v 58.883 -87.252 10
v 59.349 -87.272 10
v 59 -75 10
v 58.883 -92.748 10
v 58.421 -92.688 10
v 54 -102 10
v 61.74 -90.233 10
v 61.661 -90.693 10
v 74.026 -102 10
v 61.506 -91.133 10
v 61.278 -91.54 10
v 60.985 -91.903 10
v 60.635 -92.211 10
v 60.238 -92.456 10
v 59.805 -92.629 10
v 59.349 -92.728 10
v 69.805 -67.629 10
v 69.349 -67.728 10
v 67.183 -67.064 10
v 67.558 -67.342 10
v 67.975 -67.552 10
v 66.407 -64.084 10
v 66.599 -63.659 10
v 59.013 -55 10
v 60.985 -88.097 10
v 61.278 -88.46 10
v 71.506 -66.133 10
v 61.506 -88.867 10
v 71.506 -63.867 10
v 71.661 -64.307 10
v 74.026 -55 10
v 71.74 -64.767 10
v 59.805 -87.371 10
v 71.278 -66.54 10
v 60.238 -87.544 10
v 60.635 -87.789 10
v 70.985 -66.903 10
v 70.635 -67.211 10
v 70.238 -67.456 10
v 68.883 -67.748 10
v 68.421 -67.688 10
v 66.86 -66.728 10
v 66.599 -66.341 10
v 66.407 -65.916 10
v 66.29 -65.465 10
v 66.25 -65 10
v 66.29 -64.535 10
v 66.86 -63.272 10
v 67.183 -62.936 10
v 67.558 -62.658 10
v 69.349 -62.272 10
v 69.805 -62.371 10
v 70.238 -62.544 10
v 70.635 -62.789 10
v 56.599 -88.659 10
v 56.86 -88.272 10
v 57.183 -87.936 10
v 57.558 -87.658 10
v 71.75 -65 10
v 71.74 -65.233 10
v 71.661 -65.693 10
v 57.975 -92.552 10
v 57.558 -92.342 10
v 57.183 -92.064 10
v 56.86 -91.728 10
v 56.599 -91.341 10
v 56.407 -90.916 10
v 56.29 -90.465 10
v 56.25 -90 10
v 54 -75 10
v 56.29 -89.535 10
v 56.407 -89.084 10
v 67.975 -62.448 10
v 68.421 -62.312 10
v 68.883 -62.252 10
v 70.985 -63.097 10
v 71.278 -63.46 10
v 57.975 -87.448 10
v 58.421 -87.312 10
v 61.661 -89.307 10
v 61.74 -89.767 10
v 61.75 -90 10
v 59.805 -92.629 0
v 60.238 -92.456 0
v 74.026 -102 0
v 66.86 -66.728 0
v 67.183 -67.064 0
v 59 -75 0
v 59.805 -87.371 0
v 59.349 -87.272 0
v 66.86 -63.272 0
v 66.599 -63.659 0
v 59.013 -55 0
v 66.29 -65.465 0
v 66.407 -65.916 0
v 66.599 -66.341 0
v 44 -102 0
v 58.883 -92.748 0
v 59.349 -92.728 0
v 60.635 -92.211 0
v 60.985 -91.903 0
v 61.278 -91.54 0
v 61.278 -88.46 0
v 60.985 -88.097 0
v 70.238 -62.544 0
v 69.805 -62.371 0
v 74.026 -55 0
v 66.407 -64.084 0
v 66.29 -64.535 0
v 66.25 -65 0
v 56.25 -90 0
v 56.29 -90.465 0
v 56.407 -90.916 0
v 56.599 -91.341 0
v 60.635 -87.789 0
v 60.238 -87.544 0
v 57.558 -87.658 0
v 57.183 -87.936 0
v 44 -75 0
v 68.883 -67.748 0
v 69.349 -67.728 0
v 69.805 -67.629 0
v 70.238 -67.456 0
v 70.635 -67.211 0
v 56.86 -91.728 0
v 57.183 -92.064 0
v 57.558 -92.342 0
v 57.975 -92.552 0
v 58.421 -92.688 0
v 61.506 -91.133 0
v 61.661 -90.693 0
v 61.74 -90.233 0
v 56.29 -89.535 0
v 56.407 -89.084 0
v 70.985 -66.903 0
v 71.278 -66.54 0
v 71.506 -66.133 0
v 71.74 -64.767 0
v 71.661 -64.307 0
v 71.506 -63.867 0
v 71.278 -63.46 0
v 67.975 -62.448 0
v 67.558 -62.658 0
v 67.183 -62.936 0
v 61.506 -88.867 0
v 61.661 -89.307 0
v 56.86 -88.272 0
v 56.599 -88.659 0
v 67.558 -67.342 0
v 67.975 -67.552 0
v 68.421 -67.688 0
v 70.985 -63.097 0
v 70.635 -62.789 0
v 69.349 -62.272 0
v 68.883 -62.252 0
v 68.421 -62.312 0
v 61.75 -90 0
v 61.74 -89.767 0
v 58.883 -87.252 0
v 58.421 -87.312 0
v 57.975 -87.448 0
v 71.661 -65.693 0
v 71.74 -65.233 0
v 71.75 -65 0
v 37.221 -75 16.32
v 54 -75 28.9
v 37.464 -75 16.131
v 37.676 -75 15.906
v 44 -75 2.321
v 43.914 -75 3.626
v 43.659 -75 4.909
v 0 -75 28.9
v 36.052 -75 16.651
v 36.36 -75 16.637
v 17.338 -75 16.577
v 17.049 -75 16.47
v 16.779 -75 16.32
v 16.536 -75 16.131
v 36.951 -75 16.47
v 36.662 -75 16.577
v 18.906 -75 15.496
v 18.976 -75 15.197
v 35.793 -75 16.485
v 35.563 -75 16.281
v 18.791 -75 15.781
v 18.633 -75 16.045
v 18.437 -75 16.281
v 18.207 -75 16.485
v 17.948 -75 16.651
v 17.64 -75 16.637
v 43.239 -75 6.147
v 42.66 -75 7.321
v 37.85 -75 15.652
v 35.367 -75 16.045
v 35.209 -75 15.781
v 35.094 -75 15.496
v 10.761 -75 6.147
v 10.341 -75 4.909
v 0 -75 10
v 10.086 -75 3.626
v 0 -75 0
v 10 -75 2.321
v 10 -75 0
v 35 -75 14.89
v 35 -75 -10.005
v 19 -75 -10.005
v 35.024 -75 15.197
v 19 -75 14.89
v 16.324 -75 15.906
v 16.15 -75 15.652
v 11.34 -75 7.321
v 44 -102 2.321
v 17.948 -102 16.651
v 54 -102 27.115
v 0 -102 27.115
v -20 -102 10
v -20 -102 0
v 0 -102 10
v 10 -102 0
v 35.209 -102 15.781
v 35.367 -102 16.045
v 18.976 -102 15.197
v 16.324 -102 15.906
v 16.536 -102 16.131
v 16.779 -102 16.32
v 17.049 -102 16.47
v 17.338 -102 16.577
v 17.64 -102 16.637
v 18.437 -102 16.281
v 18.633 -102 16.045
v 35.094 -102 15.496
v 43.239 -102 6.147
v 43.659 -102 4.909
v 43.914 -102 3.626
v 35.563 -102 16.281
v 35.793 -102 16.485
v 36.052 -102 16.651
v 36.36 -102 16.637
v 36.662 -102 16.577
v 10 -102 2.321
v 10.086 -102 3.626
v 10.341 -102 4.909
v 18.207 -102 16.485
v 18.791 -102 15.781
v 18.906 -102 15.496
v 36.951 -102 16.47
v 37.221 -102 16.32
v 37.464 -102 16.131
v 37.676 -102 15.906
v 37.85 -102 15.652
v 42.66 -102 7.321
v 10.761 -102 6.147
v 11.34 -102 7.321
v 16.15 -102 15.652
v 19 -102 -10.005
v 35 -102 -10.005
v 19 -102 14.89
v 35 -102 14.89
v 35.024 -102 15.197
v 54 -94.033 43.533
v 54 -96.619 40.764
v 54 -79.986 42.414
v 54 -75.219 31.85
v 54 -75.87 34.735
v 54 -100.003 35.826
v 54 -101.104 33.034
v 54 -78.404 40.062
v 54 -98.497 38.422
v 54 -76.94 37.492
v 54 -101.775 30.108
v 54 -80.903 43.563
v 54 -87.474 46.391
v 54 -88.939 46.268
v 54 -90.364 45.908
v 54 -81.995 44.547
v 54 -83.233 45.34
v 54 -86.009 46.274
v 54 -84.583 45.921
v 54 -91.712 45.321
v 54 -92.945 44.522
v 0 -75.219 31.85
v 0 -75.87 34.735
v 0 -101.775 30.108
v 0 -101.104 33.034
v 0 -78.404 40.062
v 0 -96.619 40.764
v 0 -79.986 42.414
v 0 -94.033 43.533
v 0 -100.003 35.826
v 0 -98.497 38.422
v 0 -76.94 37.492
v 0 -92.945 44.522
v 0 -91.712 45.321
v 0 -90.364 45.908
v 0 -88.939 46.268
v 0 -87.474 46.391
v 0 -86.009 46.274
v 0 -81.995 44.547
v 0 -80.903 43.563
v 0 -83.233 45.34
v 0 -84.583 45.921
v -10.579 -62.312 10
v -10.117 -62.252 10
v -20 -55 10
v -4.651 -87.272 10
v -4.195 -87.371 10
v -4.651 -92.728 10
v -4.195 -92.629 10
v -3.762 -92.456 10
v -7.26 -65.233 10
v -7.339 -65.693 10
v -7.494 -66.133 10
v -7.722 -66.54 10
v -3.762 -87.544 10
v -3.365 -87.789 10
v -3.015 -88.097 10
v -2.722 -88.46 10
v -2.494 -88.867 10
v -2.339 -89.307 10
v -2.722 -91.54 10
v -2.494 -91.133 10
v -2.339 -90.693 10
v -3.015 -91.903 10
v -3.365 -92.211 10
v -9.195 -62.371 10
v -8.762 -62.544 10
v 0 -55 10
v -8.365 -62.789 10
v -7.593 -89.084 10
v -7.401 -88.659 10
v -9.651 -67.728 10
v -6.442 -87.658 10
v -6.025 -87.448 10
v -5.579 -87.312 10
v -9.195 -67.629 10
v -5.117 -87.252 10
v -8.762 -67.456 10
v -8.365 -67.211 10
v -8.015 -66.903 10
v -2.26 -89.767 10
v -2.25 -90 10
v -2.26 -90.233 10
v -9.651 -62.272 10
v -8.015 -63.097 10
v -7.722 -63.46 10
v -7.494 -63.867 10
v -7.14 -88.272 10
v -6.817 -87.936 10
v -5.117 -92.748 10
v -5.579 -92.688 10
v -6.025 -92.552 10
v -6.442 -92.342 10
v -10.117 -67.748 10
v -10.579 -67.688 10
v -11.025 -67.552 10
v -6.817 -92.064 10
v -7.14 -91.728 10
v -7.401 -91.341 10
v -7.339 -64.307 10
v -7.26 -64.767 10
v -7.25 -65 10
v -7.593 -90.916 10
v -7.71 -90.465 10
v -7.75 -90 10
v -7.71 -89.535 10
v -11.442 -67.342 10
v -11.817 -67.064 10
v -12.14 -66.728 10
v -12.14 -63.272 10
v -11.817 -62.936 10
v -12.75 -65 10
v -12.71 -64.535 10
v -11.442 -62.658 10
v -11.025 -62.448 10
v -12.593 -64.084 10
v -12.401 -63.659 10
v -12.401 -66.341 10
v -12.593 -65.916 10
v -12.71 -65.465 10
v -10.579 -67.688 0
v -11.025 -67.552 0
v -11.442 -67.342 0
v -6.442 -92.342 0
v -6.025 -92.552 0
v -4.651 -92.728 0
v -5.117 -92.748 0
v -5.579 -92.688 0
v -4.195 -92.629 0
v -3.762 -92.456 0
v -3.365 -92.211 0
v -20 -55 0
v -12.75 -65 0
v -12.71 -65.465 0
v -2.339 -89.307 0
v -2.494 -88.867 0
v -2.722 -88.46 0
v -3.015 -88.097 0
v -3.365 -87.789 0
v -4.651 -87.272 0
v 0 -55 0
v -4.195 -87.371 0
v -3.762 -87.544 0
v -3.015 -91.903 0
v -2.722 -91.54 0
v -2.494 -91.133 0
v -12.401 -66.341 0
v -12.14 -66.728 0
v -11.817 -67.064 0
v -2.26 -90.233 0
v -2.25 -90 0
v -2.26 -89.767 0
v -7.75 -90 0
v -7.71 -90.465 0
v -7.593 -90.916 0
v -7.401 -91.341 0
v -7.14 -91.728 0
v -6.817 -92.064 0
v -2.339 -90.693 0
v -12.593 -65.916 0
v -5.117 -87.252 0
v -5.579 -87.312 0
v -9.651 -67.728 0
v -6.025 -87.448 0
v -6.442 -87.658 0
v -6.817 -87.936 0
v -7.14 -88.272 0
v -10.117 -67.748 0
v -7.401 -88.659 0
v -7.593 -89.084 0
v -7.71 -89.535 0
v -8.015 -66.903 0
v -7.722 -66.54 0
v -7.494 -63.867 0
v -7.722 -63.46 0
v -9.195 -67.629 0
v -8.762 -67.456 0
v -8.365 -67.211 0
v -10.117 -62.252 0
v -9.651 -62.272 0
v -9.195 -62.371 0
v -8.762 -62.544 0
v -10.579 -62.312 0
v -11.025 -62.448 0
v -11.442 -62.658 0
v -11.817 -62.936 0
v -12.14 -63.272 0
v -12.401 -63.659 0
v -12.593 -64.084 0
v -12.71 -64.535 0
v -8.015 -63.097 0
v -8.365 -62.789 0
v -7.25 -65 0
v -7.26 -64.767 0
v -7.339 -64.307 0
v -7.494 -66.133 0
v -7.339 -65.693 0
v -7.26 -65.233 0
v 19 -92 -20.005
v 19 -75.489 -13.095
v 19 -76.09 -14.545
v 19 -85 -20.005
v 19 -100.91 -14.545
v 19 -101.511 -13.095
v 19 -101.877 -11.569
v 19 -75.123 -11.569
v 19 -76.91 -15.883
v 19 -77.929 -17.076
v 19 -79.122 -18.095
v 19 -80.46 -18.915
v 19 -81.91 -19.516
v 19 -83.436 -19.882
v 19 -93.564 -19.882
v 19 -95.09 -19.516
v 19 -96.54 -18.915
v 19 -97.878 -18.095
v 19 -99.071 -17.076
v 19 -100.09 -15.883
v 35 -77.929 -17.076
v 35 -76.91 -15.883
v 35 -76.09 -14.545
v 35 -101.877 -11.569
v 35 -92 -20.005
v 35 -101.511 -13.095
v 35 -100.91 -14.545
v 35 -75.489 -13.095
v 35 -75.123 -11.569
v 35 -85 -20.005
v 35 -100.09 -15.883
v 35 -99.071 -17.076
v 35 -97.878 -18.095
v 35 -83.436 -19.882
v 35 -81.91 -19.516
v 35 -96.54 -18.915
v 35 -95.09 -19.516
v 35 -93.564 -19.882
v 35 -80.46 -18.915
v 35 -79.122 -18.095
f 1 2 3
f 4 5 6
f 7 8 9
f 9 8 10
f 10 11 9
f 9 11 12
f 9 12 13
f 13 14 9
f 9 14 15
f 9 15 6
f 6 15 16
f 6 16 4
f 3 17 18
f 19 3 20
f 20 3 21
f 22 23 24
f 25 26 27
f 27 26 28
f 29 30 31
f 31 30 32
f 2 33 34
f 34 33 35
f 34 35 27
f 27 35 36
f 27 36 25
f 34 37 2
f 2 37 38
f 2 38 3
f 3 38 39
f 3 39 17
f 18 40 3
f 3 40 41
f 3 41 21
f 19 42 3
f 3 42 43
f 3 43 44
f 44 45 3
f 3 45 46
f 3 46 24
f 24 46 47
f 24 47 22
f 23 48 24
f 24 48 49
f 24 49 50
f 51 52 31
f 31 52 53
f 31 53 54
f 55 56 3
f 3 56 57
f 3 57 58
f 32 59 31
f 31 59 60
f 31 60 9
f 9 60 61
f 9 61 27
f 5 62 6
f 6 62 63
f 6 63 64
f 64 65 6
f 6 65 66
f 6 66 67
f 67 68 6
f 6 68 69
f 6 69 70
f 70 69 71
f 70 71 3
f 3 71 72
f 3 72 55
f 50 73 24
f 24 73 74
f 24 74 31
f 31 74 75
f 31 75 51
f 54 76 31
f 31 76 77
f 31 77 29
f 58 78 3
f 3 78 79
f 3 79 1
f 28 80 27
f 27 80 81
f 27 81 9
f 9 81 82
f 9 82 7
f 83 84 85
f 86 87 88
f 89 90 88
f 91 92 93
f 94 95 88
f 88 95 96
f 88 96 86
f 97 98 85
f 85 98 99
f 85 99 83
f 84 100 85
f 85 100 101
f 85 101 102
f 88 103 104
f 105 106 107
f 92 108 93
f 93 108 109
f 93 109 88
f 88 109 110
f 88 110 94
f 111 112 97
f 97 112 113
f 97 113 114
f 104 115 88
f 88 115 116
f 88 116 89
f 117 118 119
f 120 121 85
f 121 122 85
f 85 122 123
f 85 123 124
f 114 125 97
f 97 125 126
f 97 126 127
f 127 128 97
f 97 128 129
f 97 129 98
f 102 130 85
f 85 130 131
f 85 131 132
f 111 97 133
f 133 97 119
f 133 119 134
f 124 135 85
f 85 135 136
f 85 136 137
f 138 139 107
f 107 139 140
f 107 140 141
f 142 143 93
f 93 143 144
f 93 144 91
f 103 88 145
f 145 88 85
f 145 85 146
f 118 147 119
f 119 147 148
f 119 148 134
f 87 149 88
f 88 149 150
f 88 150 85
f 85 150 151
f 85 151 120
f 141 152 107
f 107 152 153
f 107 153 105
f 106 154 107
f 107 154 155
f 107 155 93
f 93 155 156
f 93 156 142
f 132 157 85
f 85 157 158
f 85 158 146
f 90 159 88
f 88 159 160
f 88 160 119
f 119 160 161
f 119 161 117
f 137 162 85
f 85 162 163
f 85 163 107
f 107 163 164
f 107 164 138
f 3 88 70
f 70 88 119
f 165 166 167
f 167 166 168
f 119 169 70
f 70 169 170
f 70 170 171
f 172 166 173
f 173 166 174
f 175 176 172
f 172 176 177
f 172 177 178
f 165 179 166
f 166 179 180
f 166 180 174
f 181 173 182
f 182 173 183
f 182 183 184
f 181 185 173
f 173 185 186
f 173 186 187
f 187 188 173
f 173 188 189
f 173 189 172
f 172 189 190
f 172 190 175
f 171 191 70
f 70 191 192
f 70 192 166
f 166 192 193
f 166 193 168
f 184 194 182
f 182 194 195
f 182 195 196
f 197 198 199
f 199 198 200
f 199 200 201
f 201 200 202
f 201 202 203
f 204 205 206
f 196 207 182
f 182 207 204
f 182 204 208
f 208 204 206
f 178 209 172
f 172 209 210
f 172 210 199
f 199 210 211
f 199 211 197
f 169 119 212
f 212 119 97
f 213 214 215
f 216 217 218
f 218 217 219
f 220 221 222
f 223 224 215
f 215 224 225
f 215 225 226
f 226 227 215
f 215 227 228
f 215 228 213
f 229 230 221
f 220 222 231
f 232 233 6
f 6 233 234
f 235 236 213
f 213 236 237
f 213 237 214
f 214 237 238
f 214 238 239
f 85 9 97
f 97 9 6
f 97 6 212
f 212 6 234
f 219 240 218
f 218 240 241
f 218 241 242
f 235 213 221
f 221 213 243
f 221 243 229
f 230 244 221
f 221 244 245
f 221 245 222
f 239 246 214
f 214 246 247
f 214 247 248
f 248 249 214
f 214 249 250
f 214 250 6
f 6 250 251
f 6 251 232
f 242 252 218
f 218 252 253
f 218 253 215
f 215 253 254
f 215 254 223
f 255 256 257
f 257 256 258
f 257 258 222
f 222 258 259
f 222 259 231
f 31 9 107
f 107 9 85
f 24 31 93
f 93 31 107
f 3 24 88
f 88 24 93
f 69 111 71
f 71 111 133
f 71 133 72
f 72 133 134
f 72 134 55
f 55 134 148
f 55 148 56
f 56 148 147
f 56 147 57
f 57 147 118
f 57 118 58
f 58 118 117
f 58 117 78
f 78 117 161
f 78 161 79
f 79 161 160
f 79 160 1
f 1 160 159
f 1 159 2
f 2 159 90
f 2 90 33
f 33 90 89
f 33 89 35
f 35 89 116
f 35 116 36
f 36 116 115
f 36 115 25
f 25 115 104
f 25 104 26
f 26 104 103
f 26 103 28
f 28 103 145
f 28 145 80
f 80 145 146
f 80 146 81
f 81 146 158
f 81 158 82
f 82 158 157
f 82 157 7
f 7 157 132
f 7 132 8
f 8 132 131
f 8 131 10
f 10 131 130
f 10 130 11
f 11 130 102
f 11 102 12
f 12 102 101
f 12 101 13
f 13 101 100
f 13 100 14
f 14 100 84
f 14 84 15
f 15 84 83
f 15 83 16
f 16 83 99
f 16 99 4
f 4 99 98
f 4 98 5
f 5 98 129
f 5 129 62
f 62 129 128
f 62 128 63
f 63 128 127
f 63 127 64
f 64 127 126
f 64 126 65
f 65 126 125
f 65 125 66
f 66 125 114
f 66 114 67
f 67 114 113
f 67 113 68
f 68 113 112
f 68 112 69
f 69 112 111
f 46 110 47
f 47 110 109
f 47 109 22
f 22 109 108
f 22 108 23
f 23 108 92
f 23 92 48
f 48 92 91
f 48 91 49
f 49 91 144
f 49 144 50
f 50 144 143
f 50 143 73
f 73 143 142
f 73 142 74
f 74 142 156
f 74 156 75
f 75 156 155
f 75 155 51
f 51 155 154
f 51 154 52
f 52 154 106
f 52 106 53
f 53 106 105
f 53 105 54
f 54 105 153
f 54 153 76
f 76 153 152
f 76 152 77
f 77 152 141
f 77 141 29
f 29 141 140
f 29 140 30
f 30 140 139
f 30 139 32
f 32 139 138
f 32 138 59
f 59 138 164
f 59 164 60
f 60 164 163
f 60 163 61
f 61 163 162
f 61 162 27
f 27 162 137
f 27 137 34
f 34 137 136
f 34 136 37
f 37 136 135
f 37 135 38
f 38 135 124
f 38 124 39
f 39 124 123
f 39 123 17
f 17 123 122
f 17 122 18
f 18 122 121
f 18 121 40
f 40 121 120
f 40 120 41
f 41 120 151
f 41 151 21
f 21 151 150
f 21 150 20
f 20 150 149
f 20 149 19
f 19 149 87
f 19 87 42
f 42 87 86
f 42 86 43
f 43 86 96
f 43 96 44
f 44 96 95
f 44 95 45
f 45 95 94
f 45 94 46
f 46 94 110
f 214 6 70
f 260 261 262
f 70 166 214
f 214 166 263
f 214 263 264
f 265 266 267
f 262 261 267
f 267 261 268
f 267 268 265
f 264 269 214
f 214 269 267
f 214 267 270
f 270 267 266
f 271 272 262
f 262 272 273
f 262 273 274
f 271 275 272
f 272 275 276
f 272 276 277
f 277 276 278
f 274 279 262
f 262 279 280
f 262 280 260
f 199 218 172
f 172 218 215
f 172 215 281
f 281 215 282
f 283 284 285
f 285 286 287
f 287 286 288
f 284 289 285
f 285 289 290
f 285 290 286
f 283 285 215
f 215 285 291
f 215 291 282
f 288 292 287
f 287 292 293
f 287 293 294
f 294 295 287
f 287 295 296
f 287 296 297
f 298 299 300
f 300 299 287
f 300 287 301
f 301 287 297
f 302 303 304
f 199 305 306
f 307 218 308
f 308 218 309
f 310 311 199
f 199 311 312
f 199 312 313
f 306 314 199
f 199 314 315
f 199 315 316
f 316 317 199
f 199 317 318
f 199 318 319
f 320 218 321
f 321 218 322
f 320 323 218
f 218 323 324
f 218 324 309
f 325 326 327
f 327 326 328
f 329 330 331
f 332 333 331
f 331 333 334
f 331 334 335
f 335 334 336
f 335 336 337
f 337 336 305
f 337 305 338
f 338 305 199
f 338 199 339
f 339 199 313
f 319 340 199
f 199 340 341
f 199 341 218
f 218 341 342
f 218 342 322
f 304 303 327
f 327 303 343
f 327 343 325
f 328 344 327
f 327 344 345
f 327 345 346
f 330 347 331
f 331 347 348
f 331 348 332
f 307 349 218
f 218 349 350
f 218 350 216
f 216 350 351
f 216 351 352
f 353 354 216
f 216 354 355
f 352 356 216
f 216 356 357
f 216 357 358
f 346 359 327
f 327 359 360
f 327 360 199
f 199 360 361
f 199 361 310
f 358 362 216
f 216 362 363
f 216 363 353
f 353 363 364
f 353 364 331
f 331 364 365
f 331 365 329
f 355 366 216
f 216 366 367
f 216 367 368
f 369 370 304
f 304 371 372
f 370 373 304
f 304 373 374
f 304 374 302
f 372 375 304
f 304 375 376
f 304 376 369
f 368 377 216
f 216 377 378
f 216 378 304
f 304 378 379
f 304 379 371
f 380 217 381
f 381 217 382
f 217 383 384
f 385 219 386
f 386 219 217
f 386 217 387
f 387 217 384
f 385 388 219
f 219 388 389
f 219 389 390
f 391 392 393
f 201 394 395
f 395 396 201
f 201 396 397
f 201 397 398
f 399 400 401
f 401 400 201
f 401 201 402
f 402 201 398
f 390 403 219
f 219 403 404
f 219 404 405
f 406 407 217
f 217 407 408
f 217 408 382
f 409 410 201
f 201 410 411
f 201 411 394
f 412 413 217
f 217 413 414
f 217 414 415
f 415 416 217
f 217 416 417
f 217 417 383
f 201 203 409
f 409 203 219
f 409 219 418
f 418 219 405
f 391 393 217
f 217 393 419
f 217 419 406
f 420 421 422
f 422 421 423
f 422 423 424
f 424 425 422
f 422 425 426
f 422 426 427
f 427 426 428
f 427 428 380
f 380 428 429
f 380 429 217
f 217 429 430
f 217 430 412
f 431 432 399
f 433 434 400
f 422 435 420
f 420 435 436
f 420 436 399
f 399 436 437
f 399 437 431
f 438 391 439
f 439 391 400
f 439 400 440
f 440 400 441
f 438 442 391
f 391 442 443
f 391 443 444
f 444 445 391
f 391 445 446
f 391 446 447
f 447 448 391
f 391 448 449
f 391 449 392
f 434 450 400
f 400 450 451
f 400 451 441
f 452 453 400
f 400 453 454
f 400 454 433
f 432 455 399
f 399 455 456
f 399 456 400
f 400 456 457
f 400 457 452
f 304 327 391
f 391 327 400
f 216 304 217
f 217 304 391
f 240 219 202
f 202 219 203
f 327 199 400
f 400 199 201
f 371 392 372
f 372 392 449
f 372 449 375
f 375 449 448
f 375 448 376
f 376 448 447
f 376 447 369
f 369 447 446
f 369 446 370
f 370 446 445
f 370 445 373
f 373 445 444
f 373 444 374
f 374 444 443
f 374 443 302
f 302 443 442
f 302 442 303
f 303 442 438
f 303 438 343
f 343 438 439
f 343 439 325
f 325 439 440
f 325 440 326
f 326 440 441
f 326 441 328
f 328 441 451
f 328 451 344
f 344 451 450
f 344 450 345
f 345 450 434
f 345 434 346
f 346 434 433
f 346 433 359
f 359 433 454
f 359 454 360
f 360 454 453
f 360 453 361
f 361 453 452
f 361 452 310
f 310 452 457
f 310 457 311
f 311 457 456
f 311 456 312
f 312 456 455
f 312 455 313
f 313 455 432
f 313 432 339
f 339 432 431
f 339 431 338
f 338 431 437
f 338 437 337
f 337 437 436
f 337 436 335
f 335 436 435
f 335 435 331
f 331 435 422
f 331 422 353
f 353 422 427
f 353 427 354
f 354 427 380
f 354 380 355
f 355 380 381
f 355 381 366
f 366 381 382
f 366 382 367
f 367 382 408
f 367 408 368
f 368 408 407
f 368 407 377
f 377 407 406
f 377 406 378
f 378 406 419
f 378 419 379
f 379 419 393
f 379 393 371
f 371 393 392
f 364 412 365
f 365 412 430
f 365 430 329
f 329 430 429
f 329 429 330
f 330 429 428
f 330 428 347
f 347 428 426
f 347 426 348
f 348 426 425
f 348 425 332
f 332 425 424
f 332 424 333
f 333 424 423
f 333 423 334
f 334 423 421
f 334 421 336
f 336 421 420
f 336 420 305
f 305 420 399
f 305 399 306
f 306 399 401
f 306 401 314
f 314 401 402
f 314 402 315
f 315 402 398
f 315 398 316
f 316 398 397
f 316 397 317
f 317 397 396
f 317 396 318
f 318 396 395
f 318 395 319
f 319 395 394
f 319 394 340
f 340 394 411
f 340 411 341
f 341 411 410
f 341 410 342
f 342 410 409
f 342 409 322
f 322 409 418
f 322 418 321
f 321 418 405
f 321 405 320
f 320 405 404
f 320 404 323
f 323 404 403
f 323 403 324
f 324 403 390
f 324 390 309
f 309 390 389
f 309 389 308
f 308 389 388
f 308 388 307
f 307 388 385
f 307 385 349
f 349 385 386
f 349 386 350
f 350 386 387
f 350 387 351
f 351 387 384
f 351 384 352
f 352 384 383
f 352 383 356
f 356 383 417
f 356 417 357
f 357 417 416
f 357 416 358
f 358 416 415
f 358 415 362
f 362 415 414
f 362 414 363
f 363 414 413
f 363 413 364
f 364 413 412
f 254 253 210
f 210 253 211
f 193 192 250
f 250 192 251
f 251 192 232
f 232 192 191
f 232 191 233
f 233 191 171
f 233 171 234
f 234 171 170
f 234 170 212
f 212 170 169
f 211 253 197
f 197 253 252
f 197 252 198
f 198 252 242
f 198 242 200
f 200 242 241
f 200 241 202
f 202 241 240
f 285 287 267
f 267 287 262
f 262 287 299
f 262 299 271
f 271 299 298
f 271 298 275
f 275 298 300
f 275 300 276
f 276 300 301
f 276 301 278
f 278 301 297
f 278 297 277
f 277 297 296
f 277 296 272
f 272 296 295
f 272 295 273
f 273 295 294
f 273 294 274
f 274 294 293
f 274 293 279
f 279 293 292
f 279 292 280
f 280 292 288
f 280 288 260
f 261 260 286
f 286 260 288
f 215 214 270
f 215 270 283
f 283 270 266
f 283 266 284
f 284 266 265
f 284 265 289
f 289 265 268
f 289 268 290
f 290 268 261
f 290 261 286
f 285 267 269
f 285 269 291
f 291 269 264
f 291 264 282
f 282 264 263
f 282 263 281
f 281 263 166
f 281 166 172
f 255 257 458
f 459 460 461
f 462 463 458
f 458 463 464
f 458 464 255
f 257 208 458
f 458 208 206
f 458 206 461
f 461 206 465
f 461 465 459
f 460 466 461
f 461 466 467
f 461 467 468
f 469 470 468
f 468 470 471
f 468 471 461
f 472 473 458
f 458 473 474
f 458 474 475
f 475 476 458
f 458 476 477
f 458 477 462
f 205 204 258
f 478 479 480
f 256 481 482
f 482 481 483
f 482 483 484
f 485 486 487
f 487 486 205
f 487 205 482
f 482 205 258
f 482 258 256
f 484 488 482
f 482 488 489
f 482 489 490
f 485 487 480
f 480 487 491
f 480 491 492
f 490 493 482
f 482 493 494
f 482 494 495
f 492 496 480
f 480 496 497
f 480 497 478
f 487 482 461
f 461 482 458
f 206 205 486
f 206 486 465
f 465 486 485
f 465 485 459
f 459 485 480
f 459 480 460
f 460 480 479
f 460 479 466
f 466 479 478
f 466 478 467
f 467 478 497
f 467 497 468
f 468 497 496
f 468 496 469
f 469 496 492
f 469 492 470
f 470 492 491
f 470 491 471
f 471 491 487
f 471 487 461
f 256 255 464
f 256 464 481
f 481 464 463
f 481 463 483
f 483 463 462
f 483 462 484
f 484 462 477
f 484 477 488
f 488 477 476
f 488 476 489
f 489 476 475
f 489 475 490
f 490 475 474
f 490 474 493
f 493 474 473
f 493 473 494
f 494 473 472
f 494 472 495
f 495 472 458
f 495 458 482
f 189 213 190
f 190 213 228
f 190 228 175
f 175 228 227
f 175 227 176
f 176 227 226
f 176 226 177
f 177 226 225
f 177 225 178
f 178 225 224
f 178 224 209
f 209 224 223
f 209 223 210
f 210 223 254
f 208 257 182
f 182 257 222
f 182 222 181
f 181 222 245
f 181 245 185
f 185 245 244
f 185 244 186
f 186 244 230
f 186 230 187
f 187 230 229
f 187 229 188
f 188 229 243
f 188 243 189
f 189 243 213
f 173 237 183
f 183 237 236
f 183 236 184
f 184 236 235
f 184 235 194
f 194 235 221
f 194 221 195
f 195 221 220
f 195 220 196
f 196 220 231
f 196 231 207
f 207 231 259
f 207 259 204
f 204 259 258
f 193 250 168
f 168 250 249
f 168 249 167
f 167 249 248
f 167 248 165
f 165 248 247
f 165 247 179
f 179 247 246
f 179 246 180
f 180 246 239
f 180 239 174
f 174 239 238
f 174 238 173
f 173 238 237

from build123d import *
from OCP.BRepFilletAPI import BRepFilletAPI_MakeChamfer

# Parameters (mm, degrees)
SKETCH2_R             = 2.75
BOSS_EXTRUDE1_DEPTH   = 10
BOSS_EXTRUDE1_2_DEPTH = 10
SKETCH3_W             = 10
SKETCH3_H             = 27
BOSS_EXTRUDE2_DEPTH   = 15
SKETCH4_W             = 54
SKETCH4_H             = 27
BOSS_EXTRUDE3_DEPTH   = 10
CHAMFER1_SIZE         = 20
CHAMFER1_SIZE2        = 11.547005384
FILLET1_R             = 10
BOSS_EXTRUDE4_DEPTH   = 54
FILLET2_R             = 20
BOSS_EXTRUDE5_DEPTH   = 27
FILLET3_R             = 10
SKETCH7_R             = 4
BOSS_EXTRUDE6_DEPTH   = 27
FILLET4_R             = 2


with BuildPart() as part:
    # Sketch2 → Boss-Extrude1 (new body)
    with BuildSketch(Plane.XY):
        Polygon((44, -75), (44, -102), (74.026339821, -102), (74.026339821, -55), (59.01316991, -55), (59, -75), align=None)
        with Locations((59, -90)):
            Circle(SKETCH2_R, mode=Mode.SUBTRACT)
        with Locations((69, -65)):
            Circle(SKETCH2_R, mode=Mode.SUBTRACT)
    extrude(amount=BOSS_EXTRUDE1_DEPTH)



with BuildPart() as body_2:
    # Sketch2 → Boss-Extrude1 2 (new body)
    with BuildSketch(Plane.XY):
        Polygon((-20, -55), (-20, -102), (10, -102), (10, -75), (0, -75), (0, -55), align=None)
        with Locations((-10, -65)):
            Circle(SKETCH2_R, mode=Mode.SUBTRACT)
        with Locations((-5, -90)):
            Circle(SKETCH2_R, mode=Mode.SUBTRACT)
    extrude(amount=BOSS_EXTRUDE1_2_DEPTH)


with BuildPart() as part_1:
    add(part.part)

    add(body_2.part)  # Boss-Extrude2 merges body 2
    # Sketch3 → Boss-Extrude2 (add)
    with BuildSketch(Plane.XY.offset(10)):
        with Locations((5, -88.5)):
            Rectangle(SKETCH3_W, SKETCH3_H)
        with Locations((49, -88.5)):
            Rectangle(SKETCH3_W, SKETCH3_H)
    extrude(amount=BOSS_EXTRUDE2_DEPTH)

    # Sketch4 → Boss-Extrude3 (add)
    with BuildSketch(Plane.XY.offset(25)):
        with Locations((27, -88.5)):
            Rectangle(SKETCH4_W, SKETCH4_H)
    extrude(amount=BOSS_EXTRUDE3_DEPTH)

    # Chamfer1: one chamfer whose edges measure the first distance from different faces: ONE call of the kernel's chamfer builder (chamfer() names one face for all edges)
    chamfer1_edges_1 = [part_1.edges().sort_by_distance(p)[0] for p in [
        (44, -88.5, 25),
    ]]
    chamfer1_side_1 = [part_1.faces().sort_by_distance(p)[0] for p in [
        (44, -88.5, 12.5),
    ]]
    chamfer1_edges_2 = [part_1.edges().sort_by_distance(p)[0] for p in [
        (10, -88.5, 25),
    ]]
    chamfer1_side_2 = [part_1.faces().sort_by_distance(p)[0] for p in [
        (10, -88.5, 12.5),
    ]]
    chamfer1 = BRepFilletAPI_MakeChamfer(part_1.part.solid().wrapped)
    for e in chamfer1_edges_1:
        chamfer1.Add(CHAMFER1_SIZE, CHAMFER1_SIZE2, e.wrapped, chamfer1_side_1[0].wrapped)  # the first distance lies on this face
    for e in chamfer1_edges_2:
        chamfer1.Add(CHAMFER1_SIZE, CHAMFER1_SIZE2, e.wrapped, chamfer1_side_2[0].wrapped)  # the first distance lies on this face
    add(Compound.cast(chamfer1.Shape()), mode=Mode.REPLACE)

    # Fillet1
    # the kernel refuses this fillet: 10 mm, written as the material it adds along each edge
    with BuildSketch(Plane(origin=(44, -102, 5), x_dir=(0, 0, -1), z_dir=(0, 1, 0))) as fillet1_piece_1:
        with BuildLine():
            CenterArc((FILLET1_R * 0.267949192431, FILLET1_R), FILLET1_R, 240, 30)
            Line((-FILLET1_R * 0.232050807569, FILLET1_R * 0.133974596216), (0, 0))
            Line((0, 0), (FILLET1_R * 0.267949192431, 0))
        make_face()
    extrude(amount=27)
    with BuildSketch(Plane(origin=(10, -102, 5), x_dir=(0, 0, -1), z_dir=(0, 1, 0))) as fillet1_piece_2:
        with BuildLine():
            CenterArc((FILLET1_R * 0.267949192431, -FILLET1_R), FILLET1_R, 90, 30)
            Line((-FILLET1_R * 0.232050807569, -FILLET1_R * 0.133974596216), (0, 0))
            Line((0, 0), (FILLET1_R * 0.267949192431, 0))
        make_face()
    extrude(amount=27)
    with BuildSketch(Plane(origin=(21.547005384, -102, 25), x_dir=(-0.500000000000001, 0, -0.866025403784438), z_dir=(0, 1, 0))) as fillet1_piece_3:
        with BuildLine():
            CenterArc((FILLET1_R * 0.57735026919, -FILLET1_R), FILLET1_R, 90, 60)
            Line((-FILLET1_R * 0.288675134595, -FILLET1_R * 0.5), (0, 0))
            Line((0, 0), (FILLET1_R * 0.57735026919, 0))
        make_face()
    extrude(amount=27)
    with BuildSketch(Plane(origin=(32.452994616, -102, 25), x_dir=(0.5000000000000013, 0, -0.866025403784438), z_dir=(0, 1, 0))) as fillet1_piece_4:
        with BuildLine():
            CenterArc((FILLET1_R * 0.57735026919, FILLET1_R), FILLET1_R, 210, 60)
            Line((-FILLET1_R * 0.288675134595, FILLET1_R * 0.5), (0, 0))
            Line((0, 0), (FILLET1_R * 0.57735026919, 0))
        make_face()
    extrude(amount=27)

    # Sketch5 → Boss-Extrude4 (add)
    with BuildSketch(Plane.ZY):
        with BuildLine():
            ThreePointArc((35, -78.77790147), (38.839091833, -78.571636186), (42.413977278, -79.986332451))
            Line((42.413977278, -79.986332451), (35, -75))
            Line((35, -75), (35, -78.77790147))
        make_face()
        with BuildLine():
            ThreePointArc((35, -96.130929705), (39.540098119, -96.194122408), (43.533263146, -94.032845631))
            ThreePointArc((43.533263146, -94.032845631), (45.645892631, -91.040634418), (46.39125548, -87.454415588))
            ThreePointArc((46.39125548, -87.454415588), (45.334947826, -83.223842115), (42.413977278, -79.986332451))
            ThreePointArc((42.413977278, -79.986332451), (38.839091833, -78.571636186), (35, -78.77790147))
            Line((35, -78.77790147), (35, -96.130929705))
        make_face()
        with BuildLine():
            ThreePointArc((35, -78.77790147), (28.39125548, -87.454415588), (35, -96.130929705))
            Line((35, -96.130929705), (35, -78.77790147))
        make_face()
        with BuildLine():
            Line((35, -102), (43.533263146, -94.032845631))
            ThreePointArc((43.533263146, -94.032845631), (39.540098119, -96.194122408), (35, -96.130929705))
            Line((35, -96.130929705), (35, -102))
        make_face()
    extrude(amount=-BOSS_EXTRUDE4_DEPTH)

    # Fillet2
    fillet2_edges = [part_1.edges().sort_by_distance(p)[0] for p in [
        (27, -102, 35),
        (27, -75, 35),
    ]]
    fillet(fillet2_edges, radius=FILLET2_R)

    # Sketch6 → Boss-Extrude5 (add)
    with BuildSketch(Plane.XZ.offset(102)):
        with BuildLine():
            Line((27, -20.005137591), (27, 24.994862409))
            ThreePointArc((27, 24.994862409), (22.461220804, 23.739984394), (19, 20.546994264))
            Line((19, 20.546994264), (19, -20.005137591))
            Line((19, -20.005137591), (27, -20.005137591))
        make_face()
        with BuildLine():
            ThreePointArc((35, 20.546994264), (31.538779196, 23.739984394), (27, 24.994862409))
            Line((27, 24.994862409), (27, -20.005137591))
            Line((27, -20.005137591), (35, -20.005137591))
            Line((35, -20.005137591), (35, 20.546994264))
        make_face()
    extrude(amount=-BOSS_EXTRUDE5_DEPTH)

    # Fillet3
    fillet3_edges = [part_1.edges().sort_by_distance(p)[0] for p in [
        (27, -102, -20.005137591),
        (27, -75, -20.005137591),
    ]]
    fillet(fillet3_edges, radius=FILLET3_R)

    # Sketch7 → Boss-Extrude6 (add)
    with BuildSketch(Plane.XZ.offset(102)):
        with Locations((35, 20.546994264)):
            Circle(SKETCH7_R)
        with Locations((19, 20.546994264)):
            Circle(SKETCH7_R)
    extrude(amount=-BOSS_EXTRUDE6_DEPTH)

    # Fillet4
    # the kernel refuses this fillet: 2 mm, written as the material it adds along each edge
    with BuildSketch(Plane(origin=(19, -75, 16.546994264), x_dir=(-0.9855985596534884, 0, 0.16910197872576482), z_dir=(0, -1, 0))) as fillet4_piece_1:
        with BuildLine():
            CenterArc((1.691019787, 1.971197119), FILLET4_R, 189.735610317, 70.528779366)
            Line((-0.280177332, 1.632993162), (0, 0))
            ThreePointArc((0, 0), (0.676407915, 0.057605761), (1.35281583, 0))
        make_face()
    extrude(amount=27)
    with BuildSketch(Plane(origin=(16.982072855, -75, 17.093304927), x_dir=(0.9365633993502674, 0, -0.35049821539841175), z_dir=(0, -1, 0))) as fillet4_piece_2:
        with BuildLine():
            CenterArc((1.698511894, -1.970939444), FILLET4_R, 99.779167009, 70.738624206)
            Line((-0.274161714, -1.641456762), (0, 0))
            ThreePointArc((0, 0), (0.679404758, -0.058121111), (1.358809515, 0))
        make_face()
    extrude(amount=27)
    with BuildSketch(Plane(origin=(37.017927145, -75, 17.093304927), x_dir=(0.5000000000000021, 0, -0.8660254037844376), z_dir=(0, -1, 0))) as fillet4_piece_3:
        with BuildLine():
            CenterArc((1.664194985, -2), FILLET4_R, 90, 70.738624206)
            ThreePointArc((-0.223852102, -1.340243834), (-0.05459906, -0.679696867), (0, 0))
            Line((0, 0), (1.664194985, 0))
        make_face()
    extrude(amount=27)
    with BuildSketch(Plane(origin=(35, -75, 16.546994264), x_dir=(0, 0, -1), z_dir=(0, -1, 0))) as fillet4_piece_4:
        with BuildLine():
            CenterArc((1.656854249, 2), FILLET4_R, 199.471220634, 70.528779366)
            ThreePointArc((-0.228763834, 1.333333333), (-0.057605761, 0.676407915), (0, 0))
            Line((0, 0), (1.656854249, 0))
        make_face()
    extrude(amount=27)


solid = part_1.part
